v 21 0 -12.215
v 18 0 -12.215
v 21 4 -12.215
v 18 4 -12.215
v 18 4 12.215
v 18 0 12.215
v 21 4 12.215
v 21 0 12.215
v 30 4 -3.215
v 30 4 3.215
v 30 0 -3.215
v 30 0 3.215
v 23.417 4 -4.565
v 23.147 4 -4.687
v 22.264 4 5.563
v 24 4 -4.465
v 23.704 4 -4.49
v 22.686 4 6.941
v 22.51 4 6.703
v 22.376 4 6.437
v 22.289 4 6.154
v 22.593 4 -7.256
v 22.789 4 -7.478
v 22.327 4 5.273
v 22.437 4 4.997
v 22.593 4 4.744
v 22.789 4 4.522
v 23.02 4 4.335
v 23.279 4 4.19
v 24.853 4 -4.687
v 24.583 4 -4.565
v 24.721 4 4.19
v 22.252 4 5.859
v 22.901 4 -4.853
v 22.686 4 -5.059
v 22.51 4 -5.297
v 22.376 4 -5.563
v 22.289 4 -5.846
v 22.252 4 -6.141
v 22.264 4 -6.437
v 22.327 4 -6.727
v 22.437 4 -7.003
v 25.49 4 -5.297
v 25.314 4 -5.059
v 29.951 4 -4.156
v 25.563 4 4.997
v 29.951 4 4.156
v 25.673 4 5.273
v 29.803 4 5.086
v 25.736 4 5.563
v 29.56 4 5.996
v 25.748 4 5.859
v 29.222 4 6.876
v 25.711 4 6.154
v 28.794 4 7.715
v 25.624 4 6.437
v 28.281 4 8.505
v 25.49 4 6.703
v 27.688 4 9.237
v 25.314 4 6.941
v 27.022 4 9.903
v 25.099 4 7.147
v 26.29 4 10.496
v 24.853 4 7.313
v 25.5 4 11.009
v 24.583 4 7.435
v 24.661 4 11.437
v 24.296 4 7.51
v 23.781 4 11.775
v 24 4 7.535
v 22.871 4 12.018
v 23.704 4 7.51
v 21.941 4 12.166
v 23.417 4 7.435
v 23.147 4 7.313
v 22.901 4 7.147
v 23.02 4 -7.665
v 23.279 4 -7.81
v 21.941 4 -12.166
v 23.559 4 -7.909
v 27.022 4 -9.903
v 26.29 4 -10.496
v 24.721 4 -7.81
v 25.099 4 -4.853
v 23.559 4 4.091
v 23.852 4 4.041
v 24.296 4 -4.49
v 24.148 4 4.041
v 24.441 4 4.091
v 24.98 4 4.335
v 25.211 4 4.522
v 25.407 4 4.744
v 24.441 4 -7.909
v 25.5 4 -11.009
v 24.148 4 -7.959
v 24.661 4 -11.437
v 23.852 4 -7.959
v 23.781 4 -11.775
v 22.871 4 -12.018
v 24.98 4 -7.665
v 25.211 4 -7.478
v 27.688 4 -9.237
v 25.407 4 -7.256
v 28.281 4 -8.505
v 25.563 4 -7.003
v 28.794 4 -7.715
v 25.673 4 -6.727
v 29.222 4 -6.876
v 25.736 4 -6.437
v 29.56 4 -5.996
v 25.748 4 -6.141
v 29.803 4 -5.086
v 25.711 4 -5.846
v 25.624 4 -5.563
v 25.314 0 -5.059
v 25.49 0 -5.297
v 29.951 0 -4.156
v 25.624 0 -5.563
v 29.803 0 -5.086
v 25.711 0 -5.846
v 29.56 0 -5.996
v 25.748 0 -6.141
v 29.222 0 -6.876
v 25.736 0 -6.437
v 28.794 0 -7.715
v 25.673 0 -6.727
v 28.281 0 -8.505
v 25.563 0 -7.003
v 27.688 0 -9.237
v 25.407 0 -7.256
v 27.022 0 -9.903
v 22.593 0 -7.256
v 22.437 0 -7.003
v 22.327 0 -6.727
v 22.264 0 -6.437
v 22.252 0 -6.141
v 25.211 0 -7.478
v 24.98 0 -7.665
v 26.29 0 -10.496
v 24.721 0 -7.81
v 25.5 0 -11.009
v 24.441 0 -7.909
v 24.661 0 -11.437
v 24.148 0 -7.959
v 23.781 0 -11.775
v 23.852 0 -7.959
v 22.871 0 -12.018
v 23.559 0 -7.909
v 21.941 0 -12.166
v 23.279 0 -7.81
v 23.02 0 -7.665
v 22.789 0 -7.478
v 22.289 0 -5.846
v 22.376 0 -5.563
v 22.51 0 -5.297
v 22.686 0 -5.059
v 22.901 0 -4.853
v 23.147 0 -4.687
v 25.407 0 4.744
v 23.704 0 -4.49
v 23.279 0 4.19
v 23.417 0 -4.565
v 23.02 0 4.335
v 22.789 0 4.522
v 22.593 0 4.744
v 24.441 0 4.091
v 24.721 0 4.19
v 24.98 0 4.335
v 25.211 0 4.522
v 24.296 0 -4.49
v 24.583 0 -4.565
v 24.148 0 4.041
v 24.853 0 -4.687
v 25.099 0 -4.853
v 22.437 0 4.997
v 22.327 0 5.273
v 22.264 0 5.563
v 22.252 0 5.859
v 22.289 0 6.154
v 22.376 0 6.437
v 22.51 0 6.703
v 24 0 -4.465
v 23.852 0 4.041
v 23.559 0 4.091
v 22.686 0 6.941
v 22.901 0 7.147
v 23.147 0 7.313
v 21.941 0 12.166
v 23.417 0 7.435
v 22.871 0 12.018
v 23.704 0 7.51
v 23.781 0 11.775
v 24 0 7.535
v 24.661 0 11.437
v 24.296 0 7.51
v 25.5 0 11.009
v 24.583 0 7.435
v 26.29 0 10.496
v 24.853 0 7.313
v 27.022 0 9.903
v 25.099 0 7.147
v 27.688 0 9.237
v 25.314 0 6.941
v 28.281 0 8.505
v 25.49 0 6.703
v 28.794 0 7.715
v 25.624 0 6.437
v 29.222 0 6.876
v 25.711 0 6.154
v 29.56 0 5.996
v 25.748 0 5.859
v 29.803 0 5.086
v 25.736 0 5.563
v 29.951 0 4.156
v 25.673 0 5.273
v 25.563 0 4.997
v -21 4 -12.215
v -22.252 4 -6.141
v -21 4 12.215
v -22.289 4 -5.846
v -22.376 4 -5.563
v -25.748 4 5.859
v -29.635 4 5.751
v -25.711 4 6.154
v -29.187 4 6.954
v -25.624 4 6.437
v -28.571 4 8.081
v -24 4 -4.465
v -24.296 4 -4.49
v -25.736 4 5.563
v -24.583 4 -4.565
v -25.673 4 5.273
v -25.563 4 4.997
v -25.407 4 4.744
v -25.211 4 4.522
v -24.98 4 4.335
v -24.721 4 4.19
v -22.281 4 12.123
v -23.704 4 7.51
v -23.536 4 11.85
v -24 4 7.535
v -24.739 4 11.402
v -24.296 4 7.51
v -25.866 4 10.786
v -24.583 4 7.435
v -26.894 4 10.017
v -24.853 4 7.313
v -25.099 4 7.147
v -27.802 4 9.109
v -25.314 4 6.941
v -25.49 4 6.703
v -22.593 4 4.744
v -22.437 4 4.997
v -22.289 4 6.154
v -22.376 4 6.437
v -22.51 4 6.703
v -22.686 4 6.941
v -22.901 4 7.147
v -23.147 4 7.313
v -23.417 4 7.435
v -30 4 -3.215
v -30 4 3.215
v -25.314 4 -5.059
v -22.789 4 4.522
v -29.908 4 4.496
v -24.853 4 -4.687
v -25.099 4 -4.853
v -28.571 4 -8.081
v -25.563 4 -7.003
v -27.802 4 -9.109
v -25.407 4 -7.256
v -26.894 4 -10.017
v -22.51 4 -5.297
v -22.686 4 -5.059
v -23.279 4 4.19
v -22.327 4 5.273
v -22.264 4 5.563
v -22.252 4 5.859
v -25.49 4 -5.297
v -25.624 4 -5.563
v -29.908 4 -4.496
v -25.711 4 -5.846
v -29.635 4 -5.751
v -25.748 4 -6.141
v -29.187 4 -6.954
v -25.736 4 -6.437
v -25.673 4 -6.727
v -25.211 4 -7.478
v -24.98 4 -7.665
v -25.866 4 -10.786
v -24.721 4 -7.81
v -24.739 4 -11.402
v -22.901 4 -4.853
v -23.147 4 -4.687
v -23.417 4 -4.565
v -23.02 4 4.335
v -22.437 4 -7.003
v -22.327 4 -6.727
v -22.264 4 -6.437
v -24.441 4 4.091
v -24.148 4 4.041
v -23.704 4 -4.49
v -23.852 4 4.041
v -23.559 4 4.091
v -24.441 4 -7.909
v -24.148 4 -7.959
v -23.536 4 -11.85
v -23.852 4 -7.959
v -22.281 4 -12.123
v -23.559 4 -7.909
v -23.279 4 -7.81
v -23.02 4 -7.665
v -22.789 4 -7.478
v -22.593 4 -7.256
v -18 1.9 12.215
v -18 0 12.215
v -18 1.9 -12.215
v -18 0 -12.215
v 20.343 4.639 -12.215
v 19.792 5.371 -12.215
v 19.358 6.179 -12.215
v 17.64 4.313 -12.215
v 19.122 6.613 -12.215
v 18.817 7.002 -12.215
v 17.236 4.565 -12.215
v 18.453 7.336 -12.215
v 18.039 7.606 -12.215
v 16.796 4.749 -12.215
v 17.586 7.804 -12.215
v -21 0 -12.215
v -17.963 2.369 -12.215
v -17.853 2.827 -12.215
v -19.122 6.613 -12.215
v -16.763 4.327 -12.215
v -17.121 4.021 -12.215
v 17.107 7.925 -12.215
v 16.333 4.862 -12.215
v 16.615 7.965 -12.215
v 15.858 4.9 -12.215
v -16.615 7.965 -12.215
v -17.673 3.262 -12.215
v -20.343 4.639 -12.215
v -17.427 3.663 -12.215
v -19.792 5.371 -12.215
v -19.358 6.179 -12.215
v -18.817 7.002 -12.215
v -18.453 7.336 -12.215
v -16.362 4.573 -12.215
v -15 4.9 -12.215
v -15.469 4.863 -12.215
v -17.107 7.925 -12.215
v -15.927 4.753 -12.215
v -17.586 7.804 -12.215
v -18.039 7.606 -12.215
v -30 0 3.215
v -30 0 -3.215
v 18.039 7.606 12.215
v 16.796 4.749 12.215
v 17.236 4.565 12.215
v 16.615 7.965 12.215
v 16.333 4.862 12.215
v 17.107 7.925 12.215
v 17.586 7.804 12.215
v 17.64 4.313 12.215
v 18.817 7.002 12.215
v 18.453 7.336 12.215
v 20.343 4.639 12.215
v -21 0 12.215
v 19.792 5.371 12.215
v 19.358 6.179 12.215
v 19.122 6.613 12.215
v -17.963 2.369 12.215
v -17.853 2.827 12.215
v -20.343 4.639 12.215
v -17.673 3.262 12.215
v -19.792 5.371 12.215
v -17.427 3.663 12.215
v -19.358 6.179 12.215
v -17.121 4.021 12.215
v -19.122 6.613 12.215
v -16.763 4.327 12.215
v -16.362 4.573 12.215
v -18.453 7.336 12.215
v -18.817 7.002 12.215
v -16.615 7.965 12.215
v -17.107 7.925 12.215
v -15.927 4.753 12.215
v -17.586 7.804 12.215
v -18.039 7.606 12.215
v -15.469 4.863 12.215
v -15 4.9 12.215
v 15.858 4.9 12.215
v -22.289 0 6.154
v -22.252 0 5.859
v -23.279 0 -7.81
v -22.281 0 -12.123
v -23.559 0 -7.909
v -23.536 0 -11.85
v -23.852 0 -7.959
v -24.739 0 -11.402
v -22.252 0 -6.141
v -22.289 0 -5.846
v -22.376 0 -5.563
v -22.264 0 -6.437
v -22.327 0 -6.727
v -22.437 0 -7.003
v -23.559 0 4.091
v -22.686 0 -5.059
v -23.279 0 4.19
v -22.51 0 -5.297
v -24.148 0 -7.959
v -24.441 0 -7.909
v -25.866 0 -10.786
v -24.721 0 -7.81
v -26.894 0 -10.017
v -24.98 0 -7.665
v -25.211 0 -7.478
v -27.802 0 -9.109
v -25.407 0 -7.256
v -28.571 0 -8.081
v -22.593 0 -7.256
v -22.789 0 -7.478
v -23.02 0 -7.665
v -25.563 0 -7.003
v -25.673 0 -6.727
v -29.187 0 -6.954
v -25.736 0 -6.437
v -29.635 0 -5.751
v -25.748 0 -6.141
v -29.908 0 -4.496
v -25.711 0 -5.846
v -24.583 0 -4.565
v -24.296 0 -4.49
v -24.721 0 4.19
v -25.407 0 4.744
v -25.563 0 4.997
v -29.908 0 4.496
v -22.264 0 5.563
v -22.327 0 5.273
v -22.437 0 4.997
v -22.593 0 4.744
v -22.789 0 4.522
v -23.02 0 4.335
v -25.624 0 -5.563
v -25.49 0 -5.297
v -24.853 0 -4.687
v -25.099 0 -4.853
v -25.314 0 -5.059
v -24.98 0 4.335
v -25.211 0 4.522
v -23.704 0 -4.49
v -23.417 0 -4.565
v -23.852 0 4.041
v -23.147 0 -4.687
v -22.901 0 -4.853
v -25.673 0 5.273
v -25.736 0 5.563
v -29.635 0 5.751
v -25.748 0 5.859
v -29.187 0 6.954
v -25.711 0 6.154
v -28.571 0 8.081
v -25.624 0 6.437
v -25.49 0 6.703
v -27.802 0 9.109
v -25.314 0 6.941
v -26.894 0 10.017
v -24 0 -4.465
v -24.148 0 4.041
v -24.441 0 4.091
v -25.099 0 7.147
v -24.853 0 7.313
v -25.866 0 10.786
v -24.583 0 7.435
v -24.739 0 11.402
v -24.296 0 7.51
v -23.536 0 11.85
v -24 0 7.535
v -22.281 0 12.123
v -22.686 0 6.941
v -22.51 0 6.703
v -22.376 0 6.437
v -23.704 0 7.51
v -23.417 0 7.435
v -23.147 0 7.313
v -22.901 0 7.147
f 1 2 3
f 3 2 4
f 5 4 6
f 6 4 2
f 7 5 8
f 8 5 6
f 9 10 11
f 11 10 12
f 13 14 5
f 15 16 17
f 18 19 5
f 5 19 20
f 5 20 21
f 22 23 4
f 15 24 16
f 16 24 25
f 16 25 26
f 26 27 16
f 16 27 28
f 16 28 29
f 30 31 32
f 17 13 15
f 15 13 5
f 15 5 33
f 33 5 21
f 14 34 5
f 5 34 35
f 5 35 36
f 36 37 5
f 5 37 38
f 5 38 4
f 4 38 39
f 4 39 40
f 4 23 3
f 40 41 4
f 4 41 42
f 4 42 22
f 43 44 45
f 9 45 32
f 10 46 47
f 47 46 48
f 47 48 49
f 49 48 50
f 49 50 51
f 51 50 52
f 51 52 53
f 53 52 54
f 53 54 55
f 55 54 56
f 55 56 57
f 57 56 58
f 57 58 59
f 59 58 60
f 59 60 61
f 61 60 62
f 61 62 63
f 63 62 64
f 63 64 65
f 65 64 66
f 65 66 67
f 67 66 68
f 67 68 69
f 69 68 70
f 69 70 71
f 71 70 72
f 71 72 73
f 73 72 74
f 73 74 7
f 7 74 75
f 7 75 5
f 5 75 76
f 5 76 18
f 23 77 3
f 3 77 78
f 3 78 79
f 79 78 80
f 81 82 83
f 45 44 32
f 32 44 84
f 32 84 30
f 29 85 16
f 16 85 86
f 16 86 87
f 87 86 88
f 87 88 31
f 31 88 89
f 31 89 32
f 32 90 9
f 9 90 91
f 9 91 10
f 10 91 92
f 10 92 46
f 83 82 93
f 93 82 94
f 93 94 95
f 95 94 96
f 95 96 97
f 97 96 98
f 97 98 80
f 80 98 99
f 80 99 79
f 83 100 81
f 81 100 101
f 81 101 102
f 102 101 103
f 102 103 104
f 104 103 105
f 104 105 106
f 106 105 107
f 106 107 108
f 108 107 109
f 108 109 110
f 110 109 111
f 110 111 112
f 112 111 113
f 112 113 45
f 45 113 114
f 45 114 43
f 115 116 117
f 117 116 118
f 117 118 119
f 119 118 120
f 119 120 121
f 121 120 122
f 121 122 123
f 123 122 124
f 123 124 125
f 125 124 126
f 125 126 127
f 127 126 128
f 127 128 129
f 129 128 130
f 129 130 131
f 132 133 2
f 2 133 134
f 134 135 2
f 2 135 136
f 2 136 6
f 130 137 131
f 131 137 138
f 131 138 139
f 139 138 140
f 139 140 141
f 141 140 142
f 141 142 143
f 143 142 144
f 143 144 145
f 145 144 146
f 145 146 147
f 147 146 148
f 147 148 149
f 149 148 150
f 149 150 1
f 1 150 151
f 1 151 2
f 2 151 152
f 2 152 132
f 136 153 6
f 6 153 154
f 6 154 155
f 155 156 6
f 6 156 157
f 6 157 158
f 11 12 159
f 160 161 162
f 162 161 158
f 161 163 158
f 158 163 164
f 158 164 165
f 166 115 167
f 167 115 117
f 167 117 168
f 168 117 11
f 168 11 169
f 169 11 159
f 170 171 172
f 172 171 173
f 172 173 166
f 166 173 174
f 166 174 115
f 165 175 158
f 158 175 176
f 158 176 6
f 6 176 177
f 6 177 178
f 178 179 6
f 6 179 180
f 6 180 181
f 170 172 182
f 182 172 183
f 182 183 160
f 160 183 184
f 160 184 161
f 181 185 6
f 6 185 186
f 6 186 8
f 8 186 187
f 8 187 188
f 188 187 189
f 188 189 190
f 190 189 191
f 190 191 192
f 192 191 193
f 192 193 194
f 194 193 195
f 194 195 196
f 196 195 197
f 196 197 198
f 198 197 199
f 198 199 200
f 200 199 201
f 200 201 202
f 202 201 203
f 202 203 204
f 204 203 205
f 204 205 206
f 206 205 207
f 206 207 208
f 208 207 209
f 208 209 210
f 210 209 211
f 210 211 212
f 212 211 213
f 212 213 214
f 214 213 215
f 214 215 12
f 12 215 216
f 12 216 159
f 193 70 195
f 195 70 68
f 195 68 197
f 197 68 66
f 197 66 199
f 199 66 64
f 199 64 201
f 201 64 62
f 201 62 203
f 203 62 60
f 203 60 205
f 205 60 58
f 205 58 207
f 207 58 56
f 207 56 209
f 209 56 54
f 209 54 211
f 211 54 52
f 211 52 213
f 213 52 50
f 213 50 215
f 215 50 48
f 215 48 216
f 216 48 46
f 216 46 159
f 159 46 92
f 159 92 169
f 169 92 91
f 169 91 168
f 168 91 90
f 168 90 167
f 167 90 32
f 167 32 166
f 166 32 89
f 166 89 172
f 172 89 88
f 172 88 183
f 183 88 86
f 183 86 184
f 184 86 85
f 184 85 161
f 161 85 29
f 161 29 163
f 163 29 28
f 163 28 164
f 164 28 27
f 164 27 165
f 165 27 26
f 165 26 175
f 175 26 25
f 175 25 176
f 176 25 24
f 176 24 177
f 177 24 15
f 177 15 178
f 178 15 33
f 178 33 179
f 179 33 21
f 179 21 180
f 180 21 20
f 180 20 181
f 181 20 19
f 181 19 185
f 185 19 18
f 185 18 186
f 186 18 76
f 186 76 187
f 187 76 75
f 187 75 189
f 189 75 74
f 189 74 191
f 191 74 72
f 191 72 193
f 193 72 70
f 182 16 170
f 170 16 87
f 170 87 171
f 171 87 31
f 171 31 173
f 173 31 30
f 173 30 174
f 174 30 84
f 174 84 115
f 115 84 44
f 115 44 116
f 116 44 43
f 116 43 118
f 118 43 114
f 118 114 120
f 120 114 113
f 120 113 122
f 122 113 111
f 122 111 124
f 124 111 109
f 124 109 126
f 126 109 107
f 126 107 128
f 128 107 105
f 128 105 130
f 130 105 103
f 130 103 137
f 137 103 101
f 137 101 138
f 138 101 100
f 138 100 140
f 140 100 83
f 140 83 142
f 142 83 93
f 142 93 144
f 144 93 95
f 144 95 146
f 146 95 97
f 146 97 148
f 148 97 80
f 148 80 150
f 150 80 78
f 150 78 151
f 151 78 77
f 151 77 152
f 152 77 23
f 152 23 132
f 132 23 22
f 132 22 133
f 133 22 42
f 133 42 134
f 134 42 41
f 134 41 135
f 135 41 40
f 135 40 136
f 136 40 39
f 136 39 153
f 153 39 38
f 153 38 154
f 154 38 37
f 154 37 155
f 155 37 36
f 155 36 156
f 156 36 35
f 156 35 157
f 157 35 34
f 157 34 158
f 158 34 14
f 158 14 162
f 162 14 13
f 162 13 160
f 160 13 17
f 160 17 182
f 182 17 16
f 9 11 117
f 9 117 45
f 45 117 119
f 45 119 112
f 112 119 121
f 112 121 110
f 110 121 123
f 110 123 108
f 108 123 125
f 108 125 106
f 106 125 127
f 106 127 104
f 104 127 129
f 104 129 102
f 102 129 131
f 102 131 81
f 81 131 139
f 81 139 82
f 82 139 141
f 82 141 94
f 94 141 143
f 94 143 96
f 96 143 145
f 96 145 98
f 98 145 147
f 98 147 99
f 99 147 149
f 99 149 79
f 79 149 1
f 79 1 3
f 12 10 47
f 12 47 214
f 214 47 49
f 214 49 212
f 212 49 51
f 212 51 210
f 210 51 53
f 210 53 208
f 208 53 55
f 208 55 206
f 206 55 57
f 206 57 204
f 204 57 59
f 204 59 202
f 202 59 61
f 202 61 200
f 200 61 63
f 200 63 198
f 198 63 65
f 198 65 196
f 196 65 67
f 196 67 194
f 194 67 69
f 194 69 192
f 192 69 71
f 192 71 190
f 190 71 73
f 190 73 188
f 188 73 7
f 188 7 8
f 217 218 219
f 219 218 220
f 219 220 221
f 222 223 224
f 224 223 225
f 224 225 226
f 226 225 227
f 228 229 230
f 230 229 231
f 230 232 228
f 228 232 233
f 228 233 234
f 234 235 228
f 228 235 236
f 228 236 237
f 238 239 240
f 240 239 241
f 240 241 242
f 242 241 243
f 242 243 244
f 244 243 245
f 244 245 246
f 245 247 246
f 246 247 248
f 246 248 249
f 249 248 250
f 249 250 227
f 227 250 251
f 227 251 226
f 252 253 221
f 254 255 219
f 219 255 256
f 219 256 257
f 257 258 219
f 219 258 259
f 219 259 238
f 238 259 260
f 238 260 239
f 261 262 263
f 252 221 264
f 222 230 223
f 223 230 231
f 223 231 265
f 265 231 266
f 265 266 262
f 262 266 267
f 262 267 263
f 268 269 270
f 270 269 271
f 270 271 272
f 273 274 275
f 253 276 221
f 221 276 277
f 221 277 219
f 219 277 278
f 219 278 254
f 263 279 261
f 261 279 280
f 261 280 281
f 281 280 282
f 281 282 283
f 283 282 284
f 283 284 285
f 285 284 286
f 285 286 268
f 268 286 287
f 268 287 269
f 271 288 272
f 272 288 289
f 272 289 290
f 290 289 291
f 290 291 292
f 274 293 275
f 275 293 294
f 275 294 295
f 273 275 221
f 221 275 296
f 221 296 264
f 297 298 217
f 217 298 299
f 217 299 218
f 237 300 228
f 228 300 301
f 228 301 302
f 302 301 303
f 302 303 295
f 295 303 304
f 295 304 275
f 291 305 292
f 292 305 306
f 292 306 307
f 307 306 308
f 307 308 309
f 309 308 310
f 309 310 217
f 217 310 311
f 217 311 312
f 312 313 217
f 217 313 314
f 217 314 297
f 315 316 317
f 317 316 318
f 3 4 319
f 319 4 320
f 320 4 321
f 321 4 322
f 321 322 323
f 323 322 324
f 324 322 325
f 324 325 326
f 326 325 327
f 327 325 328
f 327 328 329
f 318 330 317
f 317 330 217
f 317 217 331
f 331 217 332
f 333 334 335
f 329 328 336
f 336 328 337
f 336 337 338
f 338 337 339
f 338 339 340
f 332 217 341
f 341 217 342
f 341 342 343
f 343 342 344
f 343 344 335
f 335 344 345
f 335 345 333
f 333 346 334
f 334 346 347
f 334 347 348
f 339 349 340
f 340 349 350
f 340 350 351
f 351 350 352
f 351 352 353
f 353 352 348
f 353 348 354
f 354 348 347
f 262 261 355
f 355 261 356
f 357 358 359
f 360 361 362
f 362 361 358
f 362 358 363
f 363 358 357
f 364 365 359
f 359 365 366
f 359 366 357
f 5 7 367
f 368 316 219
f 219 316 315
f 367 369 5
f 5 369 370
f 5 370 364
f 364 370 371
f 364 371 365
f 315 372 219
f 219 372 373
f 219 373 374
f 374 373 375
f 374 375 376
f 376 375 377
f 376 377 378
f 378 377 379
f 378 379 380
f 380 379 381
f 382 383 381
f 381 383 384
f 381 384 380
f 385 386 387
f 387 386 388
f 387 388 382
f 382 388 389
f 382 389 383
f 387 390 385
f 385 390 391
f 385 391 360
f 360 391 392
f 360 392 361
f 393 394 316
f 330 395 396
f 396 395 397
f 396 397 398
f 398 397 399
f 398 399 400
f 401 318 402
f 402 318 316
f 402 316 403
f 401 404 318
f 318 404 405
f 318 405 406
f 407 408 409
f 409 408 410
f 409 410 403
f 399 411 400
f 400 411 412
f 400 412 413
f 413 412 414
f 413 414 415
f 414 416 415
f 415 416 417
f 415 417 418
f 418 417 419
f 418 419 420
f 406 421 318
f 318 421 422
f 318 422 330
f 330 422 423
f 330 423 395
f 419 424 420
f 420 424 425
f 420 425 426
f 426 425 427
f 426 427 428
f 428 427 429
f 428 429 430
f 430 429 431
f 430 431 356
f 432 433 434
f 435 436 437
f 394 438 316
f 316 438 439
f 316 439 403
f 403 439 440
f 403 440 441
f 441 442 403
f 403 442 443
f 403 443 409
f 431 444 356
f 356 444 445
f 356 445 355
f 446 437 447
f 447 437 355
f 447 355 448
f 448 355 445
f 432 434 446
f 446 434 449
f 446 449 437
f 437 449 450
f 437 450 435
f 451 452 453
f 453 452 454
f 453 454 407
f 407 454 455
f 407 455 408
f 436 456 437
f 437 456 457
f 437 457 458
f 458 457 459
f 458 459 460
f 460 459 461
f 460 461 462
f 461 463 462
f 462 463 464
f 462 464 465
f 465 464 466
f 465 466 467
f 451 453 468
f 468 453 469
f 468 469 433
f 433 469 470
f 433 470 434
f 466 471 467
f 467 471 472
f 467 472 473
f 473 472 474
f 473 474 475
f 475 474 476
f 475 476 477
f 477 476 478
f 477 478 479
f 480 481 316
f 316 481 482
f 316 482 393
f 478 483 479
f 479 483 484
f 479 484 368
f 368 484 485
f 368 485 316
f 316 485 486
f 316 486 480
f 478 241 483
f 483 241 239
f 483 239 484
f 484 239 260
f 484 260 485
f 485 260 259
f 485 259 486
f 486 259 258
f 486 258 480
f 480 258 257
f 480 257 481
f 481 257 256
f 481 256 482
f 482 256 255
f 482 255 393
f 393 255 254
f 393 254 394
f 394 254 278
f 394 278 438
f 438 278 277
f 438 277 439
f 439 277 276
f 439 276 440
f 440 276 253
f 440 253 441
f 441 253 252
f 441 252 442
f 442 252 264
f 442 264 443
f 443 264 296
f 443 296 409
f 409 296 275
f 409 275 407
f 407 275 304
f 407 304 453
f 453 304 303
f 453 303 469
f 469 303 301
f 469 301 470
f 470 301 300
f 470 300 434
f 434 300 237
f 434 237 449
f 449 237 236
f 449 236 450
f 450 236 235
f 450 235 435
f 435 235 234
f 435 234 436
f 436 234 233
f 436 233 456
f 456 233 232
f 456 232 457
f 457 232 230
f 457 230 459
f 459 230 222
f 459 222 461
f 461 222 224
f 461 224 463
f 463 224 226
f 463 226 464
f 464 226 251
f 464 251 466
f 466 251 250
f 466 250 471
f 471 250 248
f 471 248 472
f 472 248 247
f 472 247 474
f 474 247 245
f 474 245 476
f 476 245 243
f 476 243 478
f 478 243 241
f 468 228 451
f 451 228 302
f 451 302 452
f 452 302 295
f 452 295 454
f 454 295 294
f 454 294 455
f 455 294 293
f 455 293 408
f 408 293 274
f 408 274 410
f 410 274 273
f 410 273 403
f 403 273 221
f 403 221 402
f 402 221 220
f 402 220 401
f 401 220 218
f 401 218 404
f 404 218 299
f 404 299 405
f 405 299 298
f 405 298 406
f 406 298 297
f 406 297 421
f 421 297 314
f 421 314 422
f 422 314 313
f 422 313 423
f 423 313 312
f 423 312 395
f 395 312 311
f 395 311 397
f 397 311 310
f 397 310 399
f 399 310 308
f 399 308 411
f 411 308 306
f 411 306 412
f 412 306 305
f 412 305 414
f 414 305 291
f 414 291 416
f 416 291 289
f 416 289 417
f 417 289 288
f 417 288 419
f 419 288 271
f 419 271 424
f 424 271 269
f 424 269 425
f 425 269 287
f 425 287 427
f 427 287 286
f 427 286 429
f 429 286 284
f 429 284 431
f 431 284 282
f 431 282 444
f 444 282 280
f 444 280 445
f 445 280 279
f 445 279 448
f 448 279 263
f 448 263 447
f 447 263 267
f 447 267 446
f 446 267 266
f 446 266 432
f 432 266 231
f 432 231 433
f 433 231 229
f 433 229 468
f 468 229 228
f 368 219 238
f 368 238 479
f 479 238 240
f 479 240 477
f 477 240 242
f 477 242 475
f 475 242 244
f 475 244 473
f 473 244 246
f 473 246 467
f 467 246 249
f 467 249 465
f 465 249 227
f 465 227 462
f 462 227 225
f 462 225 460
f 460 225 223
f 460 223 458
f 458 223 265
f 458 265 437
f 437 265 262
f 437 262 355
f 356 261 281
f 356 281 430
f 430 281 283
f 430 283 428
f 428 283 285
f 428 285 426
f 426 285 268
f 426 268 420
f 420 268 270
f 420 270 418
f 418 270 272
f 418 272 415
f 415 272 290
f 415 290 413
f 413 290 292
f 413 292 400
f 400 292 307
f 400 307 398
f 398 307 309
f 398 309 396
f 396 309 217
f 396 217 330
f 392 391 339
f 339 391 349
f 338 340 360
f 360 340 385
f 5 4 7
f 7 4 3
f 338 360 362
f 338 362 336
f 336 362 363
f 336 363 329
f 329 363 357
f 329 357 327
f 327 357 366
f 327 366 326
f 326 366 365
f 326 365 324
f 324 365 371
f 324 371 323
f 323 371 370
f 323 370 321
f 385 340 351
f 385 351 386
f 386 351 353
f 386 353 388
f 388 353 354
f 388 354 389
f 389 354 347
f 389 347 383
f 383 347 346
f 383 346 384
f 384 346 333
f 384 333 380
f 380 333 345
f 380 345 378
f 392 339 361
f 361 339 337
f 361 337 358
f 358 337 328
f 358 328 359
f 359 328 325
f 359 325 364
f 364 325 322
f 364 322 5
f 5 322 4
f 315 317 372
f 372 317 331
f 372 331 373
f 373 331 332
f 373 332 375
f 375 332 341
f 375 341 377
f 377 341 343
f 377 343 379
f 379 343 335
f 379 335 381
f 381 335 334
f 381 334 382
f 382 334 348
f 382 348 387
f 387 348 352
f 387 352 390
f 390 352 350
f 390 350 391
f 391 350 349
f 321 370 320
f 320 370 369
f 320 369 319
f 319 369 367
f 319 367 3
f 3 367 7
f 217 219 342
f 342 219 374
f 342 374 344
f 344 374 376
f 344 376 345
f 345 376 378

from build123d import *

# Parameters (mm, degrees)
SKETCH2_W                       = 12
SKETCH2_H                       = 24.43
BOSS_EXTRUDE1_DEPTH             = 4
BOSS_EXTRUDE1_2_DEPTH           = 4
SKETCH3_R                       = 1.75
CUT_EXTRUDE1_DEPTH              = 4
FILLET1_R                       = 9
FILLET2_R                       = 9
BOSS_EXTRUDE2_REACH             = 34.637
SKETCH4_W                       = 18
SKETCH4_H                       = 3.065440856
SKETCH4_W_2                     = 1.61467478
BOSS_EXTRUDE2_DIRECTION_2_REACH = 34.637
FILLET3_R                       = 3
FILLET4_R                       = 6


with BuildPart() as part:
    # Sketch2 → Boss-Extrude1 (new body)
    with BuildSketch(Plane(origin=(0, 0, 0), x_dir=(1, 0, 0), z_dir=(0, 1, 0))):
        with Locations((-24, 0)):
            Rectangle(SKETCH2_W, SKETCH2_H)
    extrude(amount=BOSS_EXTRUDE1_DEPTH)


with BuildPart() as body_2:
    # Sketch2 → Boss-Extrude1 2 (new body)
    with BuildSketch(Plane(origin=(0, 0, 0), x_dir=(1, 0, 0), z_dir=(0, 1, 0))):
        with Locations((24, 0)):
            Rectangle(SKETCH2_W, SKETCH2_H)
    extrude(amount=BOSS_EXTRUDE1_2_DEPTH)


with BuildPart() as cut_extrude1_tool:
    # Sketch3 → Cut-Extrude1 (new body)
    with BuildSketch(Plane(origin=(0, 4, 0), x_dir=(1, 0, 0), z_dir=(0, 1, 0))):
        with Locations(Location((-24, 6.215, 0), (0, 0, 270))):
            Circle(SKETCH3_R)
        with Locations(Location((24, 6.215, 0), (0, 0, 270))):
            Circle(SKETCH3_R)
        with Locations(Location((24, -5.785, 0), (0, 0, 270))):
            Circle(SKETCH3_R)
        with Locations(Location((-24, -5.785, 0), (0, 0, 270))):
            Circle(SKETCH3_R)
    extrude(amount=-CUT_EXTRUDE1_DEPTH)


with BuildPart() as part_1:
    add(part.part)

    # Cut-Extrude1: cut by cut_extrude1_tool
    add(cut_extrude1_tool.part, mode=Mode.SUBTRACT)

    # Fillet1
    fillet1_edges = [part_1.edges().sort_by_distance(p)[0] for p in [
        (-30, 2, 12.215),
        (-30, 2, -12.215),
    ]]
    fillet(fillet1_edges, radius=FILLET1_R)

    # Boss-Extrude2: up to this face of the body (flat: up to its plane)
    boss_extrude2_end = Plane(part_1.part.faces().sort_by_distance((-19.5, 2, 12.215))[0])
    # Sketch4 → Boss-Extrude2 (add, up to the picked face)
    with BuildSketch(Plane.XY, mode=Mode.PRIVATE) as boss_extrude2_sk1:
        with Locations((-9, 6.432720428)):
            Rectangle(SKETCH4_W, SKETCH4_H)
    boss_extrude2_tool1 = split(extrude(boss_extrude2_sk1.sketch, amount=BOSS_EXTRUDE2_REACH, mode=Mode.PRIVATE), bisect_by=boss_extrude2_end, keep=Keep.BOTH, mode=Mode.PRIVATE)
    # Sketch4 → Boss-Extrude2 (add, up to the picked face)
    with BuildSketch(Plane.XY, mode=Mode.PRIVATE) as boss_extrude2_sk2:
        with Locations((-18.80733739, 6.432720428)):
            Rectangle(SKETCH4_W_2, SKETCH4_H)
    boss_extrude2_tool2 = split(extrude(boss_extrude2_sk2.sketch, amount=BOSS_EXTRUDE2_REACH, mode=Mode.PRIVATE), bisect_by=boss_extrude2_end, keep=Keep.BOTH, mode=Mode.PRIVATE)
    # Sketch4 → Boss-Extrude2 (add, up to the picked face)
    with BuildSketch(Plane.XY, mode=Mode.PRIVATE) as boss_extrude2_sk3:
        Polygon((-18, 4), (-18, 4.9), (-19.61467478, 4.9), (-21, 4), align=None)
    boss_extrude2_tool3 = split(extrude(boss_extrude2_sk3.sketch, amount=BOSS_EXTRUDE2_REACH, mode=Mode.PRIVATE), bisect_by=boss_extrude2_end, keep=Keep.BOTH, mode=Mode.PRIVATE)
    boss_extrude2_1 = boss_extrude2_tool1.solids().sort_by(Axis((-9, 6.43272, 0), (0, 0, 1)))[0]
    add(boss_extrude2_1)
    boss_extrude2_2 = boss_extrude2_tool2.solids().sort_by(Axis((-18.807337, 6.43272, 0), (0, 0, 1)))[0]
    add(boss_extrude2_2)
    boss_extrude2_3 = boss_extrude2_tool3.solids().sort_by(Axis((-19.188325, 4.40497, 0), (0, 0, 1)))[0]
    add(boss_extrude2_3)
    boss_extrude2 = boss_extrude2_1 + boss_extrude2_2 + boss_extrude2_3  # Boss-Extrude2 as one shape, for the pattern or mirror that repeats it

    # Boss-Extrude2 direction 2: up to this face of the body (flat: up to its plane)
    boss_extrude2_direction_2_end = Plane(part_1.part.faces().sort_by_distance((-19.5, 2, -12.215))[0])
    # Sketch4 → Boss-Extrude2 direction 2 (add, up to the picked face)
    with BuildSketch(Plane.XY, mode=Mode.PRIVATE) as boss_extrude2_direction_2_sk1:
        with Locations((-9, 6.432720428)):
            Rectangle(SKETCH4_W, SKETCH4_H)
    boss_extrude2_direction_2_tool1 = split(extrude(boss_extrude2_direction_2_sk1.sketch, amount=-BOSS_EXTRUDE2_DIRECTION_2_REACH, mode=Mode.PRIVATE), bisect_by=boss_extrude2_direction_2_end, keep=Keep.BOTH, mode=Mode.PRIVATE)
    # Sketch4 → Boss-Extrude2 direction 2 (add, up to the picked face)
    with BuildSketch(Plane.XY, mode=Mode.PRIVATE) as boss_extrude2_direction_2_sk2:
        with Locations((-18.80733739, 6.432720428)):
            Rectangle(SKETCH4_W_2, SKETCH4_H)
    boss_extrude2_direction_2_tool2 = split(extrude(boss_extrude2_direction_2_sk2.sketch, amount=-BOSS_EXTRUDE2_DIRECTION_2_REACH, mode=Mode.PRIVATE), bisect_by=boss_extrude2_direction_2_end, keep=Keep.BOTH, mode=Mode.PRIVATE)
    # Sketch4 → Boss-Extrude2 direction 2 (add, up to the picked face)
    with BuildSketch(Plane.XY, mode=Mode.PRIVATE) as boss_extrude2_direction_2_sk3:
        Polygon((-18, 4), (-18, 4.9), (-19.61467478, 4.9), (-21, 4), align=None)
    boss_extrude2_direction_2_tool3 = split(extrude(boss_extrude2_direction_2_sk3.sketch, amount=-BOSS_EXTRUDE2_DIRECTION_2_REACH, mode=Mode.PRIVATE), bisect_by=boss_extrude2_direction_2_end, keep=Keep.BOTH, mode=Mode.PRIVATE)
    boss_extrude2_direction_2_1 = boss_extrude2_direction_2_tool1.solids().sort_by(Axis((-9, 6.43272, 0), (0, 0, -1)))[0]
    add(boss_extrude2_direction_2_1)
    boss_extrude2_direction_2_2 = boss_extrude2_direction_2_tool2.solids().sort_by(Axis((-18.807337, 6.43272, 0), (0, 0, -1)))[0]
    add(boss_extrude2_direction_2_2)
    boss_extrude2_direction_2_3 = boss_extrude2_direction_2_tool3.solids().sort_by(Axis((-19.188325, 4.40497, 0), (0, 0, -1)))[0]
    add(boss_extrude2_direction_2_3)
    boss_extrude2_direction_2 = boss_extrude2_direction_2_1 + boss_extrude2_direction_2_2 + boss_extrude2_direction_2_3  # Boss-Extrude2 direction 2 as one shape, for the pattern or mirror that repeats it

    # Mirror1: Boss-Extrude2, Boss-Extrude2 direction 2 across plane
    add(boss_extrude2.mirror(Plane(origin=(0, 0, 0), x_dir=(0, 0, 1), z_dir=(1, 0, 0))))
    add(boss_extrude2_direction_2.mirror(Plane(origin=(0, 0, 0), x_dir=(0, 0, 1), z_dir=(1, 0, 0))))

    # Fillet3
    # the kernel refuses this fillet: 3 mm, written as the material it adds along each edge
    with BuildSketch(Plane(origin=(18, 4.9, -12.215), x_dir=(-1, 0, 0), z_dir=(0, 0, 1))) as fillet3_piece_1:
        with BuildLine():
            CenterArc((2.142428529, 3), FILLET3_R, 224.427004001, 45.572995999)
            Line((0, 0.9), (0, 0))
            Line((0, 0), (2.142428529, 0))
        make_face()
    extrude(amount=24.43)
    with BuildSketch(Plane(origin=(-18, 4.9, -12.215), x_dir=(0, -1, 0), z_dir=(0, 0, 1))) as fillet3_piece_2:
        with BuildLine():
            CenterArc((FILLET3_R, FILLET3_R), FILLET3_R, 180, 90)
            Line((0, FILLET3_R), (0, 0))
            Line((0, 0), (FILLET3_R, 0))
        make_face()
    extrude(amount=24.43)
    # the kernel refuses this fillet: 3 mm, written as the material it takes off along each edge
    with BuildSketch(Plane(origin=(19.61467478, 7.965440856, 19.715), x_dir=(-1, 0, 0), z_dir=(0, 0, -1)), Plane(origin=(-19.61467478, 7.965440856, 19.715), x_dir=(0, -1, 0), z_dir=(0, 0, -1))) as fillet3_2_piece_1:
        with BuildLine():
            CenterArc((FILLET3_R, -FILLET3_R), FILLET3_R, 90, 90)
            Line((0, -FILLET3_R), (0, 0))
            Line((0, 0), (FILLET3_R, 0))
        make_face()
    extrude(amount=39.43, mode=Mode.SUBTRACT)

    # Fillet4
    # the kernel refuses this fillet: 6 mm, written as the material it adds along each edge
    with BuildSketch(Plane(origin=(19.61467478, 4.9, 12.215), x_dir=(0.8385712137363982, -0.5447919965387378, 0), z_dir=(0, 0, -1))) as fillet4_piece_1_section:
        with BuildLine():
            CenterArc((2.367890606, -5.957139428), FILLET4_R, 96.852512832, 26.280461669)
            Line((-0.911613329, -0.932713695), (-1.239563722, -0.430271121))
            ThreePointArc((-1.239563722, -0.430271121), (-0.538794383, 0.27199838), (-0.503142728, 0.326875198))
            Line((-0.503142728, 0.326875198), (0, 0.6))
            ThreePointArc((0, 0.6), (0.826003324, 0.6), (1.580418252, 0.595713943))
            Line((1.580418252, 0.595713943), (1.652006648, 0))
        make_face()
    fillet4_piece_1 = extrude(amount=24.43, mode=Mode.PRIVATE)
    fillet4_piece_1 = split(fillet4_piece_1, bisect_by=Plane(origin=(19.61467478, 4, 12.215), z_dir=(0, 1, 0)), keep=Keep.TOP, mode=Mode.PRIVATE)
    add(fillet4_piece_1)
    with BuildSketch(Plane(origin=(-19.61467478, 4.9, 12.215), x_dir=(0.19652930214172712, 0.9804979517570068, 0), z_dir=(0, 0, -1))) as fillet4_piece_2:
        with BuildLine():
            CenterArc((2.605159409, -5.857265619), FILLET4_R, 102.522499919, 26.280461669)
            Line((-1.154705155, -1.181432169), (-1.530691612, -0.713848824))
            ThreePointArc((-1.530691612, -0.713848824), (-1.006442438, -0.171333333), (-0.42908986, 0.419382751))
            Line((-0.42908986, 0.419382751), (0.117917581, 0.588298771))
            ThreePointArc((0.117917581, 0.588298771), (0.182082206, 0.575437725), (1.174127699, 0.585726562))
            Line((1.174127699, 0.585726562), (1.304221491, 0))
        make_face()
    extrude(amount=24.43)


with BuildPart() as body_2_1:
    add(body_2.part)

    # Cut-Extrude1: cut by cut_extrude1_tool
    add(cut_extrude1_tool.part, mode=Mode.SUBTRACT)

    # Fillet2
    fillet2_edges = [body_2_1.edges().sort_by_distance(p)[0] for p in [
        (30, 2, -12.215),
        (30, 2, 12.215),
    ]]
    fillet(fillet2_edges, radius=FILLET2_R)


solid = Compound([part_1.part, body_2_1.part])
